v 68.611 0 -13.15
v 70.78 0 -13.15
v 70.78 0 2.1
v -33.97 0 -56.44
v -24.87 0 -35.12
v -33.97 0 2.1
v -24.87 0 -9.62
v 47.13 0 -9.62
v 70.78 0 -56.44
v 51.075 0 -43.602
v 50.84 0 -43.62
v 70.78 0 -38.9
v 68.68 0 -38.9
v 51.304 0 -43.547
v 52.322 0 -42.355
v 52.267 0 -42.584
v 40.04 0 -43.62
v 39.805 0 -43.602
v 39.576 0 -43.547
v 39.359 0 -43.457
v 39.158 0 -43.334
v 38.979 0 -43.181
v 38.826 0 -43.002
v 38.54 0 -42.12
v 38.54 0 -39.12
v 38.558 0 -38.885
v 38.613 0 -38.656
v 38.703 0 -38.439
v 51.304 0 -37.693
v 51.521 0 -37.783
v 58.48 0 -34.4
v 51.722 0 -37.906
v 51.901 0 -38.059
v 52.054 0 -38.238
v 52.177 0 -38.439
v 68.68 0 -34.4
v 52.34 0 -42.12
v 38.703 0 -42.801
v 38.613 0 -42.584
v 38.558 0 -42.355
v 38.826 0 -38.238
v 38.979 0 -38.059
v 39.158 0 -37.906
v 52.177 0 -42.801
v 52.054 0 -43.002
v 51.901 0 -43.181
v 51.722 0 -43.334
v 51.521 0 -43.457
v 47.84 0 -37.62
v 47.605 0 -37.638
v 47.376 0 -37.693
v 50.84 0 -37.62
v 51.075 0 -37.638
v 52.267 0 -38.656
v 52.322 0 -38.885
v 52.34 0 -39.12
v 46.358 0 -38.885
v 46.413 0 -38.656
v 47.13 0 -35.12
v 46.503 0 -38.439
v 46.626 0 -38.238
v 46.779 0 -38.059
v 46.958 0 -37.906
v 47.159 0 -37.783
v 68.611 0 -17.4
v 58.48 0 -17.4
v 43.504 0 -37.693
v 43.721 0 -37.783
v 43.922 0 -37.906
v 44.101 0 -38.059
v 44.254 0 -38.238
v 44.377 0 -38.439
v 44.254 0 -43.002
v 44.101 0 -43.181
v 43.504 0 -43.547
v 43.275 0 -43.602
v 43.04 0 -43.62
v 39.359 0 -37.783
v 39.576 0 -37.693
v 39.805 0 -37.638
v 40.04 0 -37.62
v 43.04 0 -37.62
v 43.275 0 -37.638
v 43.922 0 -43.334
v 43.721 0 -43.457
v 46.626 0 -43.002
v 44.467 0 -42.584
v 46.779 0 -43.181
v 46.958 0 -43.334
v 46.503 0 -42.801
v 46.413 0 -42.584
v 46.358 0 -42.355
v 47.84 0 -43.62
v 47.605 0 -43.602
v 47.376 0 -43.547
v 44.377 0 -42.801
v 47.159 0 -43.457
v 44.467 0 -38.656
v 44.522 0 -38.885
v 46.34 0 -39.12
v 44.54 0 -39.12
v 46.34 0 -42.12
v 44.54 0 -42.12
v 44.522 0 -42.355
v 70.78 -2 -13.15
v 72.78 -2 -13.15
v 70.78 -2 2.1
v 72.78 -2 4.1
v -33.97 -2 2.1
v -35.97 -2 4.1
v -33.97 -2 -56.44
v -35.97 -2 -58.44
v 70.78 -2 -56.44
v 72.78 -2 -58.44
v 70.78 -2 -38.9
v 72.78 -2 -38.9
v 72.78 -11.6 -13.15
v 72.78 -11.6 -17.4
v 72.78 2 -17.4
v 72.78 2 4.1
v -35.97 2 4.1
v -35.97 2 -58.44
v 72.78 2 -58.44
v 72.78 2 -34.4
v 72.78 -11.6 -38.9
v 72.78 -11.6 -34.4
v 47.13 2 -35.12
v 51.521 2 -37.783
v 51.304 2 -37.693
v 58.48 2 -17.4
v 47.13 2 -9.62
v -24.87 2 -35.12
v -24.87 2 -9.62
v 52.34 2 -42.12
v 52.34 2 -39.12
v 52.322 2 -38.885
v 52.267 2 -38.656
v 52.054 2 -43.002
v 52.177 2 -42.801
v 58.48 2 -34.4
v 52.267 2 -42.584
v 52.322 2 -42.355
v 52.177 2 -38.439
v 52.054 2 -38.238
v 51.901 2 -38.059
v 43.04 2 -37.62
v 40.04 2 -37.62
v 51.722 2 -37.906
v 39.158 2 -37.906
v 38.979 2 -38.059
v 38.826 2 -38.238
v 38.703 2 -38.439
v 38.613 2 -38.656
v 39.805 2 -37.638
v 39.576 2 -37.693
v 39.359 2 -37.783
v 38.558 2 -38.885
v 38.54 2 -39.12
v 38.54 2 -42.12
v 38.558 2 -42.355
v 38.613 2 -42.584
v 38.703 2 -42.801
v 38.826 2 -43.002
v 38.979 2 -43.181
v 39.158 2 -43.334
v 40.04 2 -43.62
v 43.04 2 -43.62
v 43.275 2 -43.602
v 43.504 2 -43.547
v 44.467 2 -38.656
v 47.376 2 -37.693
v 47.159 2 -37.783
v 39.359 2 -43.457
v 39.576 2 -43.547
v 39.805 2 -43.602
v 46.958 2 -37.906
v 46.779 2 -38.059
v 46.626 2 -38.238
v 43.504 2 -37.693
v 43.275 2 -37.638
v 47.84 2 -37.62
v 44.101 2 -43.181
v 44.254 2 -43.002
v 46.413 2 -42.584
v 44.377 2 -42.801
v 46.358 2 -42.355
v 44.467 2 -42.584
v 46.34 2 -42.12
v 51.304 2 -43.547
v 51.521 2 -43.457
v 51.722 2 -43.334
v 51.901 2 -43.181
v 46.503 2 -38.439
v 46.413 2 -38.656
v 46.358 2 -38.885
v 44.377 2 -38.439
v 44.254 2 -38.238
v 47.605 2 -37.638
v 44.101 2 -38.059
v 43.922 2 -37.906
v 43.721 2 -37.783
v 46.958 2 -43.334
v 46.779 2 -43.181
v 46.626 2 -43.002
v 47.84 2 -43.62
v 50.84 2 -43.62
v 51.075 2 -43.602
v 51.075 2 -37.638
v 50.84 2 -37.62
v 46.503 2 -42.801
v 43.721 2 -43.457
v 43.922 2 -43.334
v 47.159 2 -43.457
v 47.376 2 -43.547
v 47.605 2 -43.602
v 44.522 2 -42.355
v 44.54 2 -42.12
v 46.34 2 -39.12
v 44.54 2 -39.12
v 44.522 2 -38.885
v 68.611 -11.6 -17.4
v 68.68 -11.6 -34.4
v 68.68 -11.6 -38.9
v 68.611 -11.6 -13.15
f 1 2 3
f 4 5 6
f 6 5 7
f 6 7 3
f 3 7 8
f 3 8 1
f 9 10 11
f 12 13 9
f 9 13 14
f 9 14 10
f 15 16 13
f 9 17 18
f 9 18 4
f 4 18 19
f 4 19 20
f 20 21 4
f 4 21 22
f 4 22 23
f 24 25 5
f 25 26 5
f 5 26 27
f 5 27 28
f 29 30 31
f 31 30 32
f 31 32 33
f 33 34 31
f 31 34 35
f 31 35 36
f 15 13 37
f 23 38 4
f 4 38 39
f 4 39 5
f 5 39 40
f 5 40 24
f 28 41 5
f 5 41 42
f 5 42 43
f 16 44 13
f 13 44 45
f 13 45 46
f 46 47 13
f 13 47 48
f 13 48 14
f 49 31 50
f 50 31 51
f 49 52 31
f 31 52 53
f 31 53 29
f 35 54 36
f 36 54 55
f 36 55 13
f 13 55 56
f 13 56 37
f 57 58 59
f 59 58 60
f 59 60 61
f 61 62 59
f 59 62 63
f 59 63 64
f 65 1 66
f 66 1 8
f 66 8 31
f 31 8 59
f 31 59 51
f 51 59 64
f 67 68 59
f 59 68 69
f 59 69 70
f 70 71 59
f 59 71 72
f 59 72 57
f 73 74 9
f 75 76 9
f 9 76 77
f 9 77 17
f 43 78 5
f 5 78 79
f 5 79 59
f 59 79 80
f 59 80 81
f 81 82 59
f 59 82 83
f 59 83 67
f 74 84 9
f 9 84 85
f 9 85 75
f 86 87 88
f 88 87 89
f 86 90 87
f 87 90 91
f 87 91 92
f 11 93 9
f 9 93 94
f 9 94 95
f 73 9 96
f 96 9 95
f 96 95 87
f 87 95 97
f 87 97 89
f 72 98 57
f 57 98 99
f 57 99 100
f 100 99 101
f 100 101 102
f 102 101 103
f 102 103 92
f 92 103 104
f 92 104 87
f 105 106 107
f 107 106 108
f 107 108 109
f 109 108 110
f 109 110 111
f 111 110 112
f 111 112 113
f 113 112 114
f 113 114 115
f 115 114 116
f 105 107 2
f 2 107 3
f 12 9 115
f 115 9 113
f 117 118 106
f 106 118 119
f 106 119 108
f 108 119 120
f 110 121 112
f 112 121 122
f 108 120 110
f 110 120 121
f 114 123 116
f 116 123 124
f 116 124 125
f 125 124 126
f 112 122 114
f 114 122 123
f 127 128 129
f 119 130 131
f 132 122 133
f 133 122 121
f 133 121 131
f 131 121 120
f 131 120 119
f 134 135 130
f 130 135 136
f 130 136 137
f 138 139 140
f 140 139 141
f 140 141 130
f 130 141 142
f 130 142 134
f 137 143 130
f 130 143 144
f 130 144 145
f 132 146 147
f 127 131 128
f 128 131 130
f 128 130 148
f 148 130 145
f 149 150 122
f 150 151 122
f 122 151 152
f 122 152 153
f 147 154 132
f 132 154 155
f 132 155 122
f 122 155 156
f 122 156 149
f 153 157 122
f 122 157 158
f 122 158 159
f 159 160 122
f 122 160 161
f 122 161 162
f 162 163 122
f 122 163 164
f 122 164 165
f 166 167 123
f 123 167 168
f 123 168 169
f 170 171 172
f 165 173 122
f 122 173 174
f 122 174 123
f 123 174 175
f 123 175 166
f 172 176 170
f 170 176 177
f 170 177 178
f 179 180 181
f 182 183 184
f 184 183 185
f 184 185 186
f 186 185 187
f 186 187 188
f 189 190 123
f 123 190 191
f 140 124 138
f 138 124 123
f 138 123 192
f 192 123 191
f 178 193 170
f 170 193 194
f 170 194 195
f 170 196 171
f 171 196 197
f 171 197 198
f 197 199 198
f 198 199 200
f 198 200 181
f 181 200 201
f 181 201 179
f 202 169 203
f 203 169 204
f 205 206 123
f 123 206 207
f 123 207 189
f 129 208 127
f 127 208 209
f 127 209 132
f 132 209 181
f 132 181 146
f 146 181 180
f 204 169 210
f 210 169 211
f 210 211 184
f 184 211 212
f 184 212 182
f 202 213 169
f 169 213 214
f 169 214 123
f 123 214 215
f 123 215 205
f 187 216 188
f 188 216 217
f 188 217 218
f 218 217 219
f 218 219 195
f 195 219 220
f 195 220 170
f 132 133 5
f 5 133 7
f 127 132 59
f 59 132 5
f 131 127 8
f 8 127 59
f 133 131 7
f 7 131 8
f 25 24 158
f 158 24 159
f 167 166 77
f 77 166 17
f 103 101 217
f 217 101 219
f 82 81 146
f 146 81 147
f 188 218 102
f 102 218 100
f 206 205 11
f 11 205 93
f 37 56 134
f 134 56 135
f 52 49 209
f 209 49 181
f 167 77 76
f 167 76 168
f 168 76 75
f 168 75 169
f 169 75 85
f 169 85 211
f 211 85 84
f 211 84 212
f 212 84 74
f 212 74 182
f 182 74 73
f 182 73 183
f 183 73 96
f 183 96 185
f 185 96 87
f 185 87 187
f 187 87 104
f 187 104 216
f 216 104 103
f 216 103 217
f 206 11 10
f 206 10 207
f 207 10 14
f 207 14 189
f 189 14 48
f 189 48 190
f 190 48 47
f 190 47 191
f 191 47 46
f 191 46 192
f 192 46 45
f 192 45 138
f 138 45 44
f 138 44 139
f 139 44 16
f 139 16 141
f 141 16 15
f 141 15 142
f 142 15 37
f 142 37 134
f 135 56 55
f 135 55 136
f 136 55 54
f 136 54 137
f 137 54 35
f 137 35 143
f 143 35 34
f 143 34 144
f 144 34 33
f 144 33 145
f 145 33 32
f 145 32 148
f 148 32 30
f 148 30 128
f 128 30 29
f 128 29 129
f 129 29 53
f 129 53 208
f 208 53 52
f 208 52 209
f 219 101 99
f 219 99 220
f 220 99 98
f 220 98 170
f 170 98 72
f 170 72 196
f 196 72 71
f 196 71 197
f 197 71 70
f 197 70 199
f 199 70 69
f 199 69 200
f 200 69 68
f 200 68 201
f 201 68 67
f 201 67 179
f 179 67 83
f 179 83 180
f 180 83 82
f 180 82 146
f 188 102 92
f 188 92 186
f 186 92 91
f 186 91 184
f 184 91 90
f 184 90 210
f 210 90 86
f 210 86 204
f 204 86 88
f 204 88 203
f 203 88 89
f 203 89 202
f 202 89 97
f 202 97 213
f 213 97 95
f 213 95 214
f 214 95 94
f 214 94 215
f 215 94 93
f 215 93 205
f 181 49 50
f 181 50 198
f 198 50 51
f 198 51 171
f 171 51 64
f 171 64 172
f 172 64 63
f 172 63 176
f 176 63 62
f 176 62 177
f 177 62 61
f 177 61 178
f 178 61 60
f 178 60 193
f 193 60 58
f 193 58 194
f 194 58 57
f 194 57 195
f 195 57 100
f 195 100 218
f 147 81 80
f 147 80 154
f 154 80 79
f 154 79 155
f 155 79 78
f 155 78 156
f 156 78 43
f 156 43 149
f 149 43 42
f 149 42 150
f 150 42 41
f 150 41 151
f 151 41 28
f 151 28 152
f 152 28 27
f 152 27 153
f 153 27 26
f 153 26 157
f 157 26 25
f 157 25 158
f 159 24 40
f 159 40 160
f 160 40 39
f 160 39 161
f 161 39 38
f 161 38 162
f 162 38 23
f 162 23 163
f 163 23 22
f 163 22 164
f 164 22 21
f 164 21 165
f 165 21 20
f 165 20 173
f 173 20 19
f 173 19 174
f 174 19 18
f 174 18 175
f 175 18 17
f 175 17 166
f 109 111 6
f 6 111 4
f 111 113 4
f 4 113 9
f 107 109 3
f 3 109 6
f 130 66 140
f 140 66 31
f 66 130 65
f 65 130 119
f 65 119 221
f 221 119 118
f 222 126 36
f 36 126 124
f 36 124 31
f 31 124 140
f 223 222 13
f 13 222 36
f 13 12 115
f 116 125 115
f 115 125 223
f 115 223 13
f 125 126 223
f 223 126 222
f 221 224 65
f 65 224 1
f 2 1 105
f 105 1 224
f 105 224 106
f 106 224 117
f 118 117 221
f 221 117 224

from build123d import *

# Parameters (mm, degrees)
LID_W               = 108.75
LID_H               = 62.54
EXTRUDE_1_DEPTH     = 2
CUT_EXTRUDE_1_REACH = 95.36
SKETCH_8_W          = 72
SKETCH_8_H          = 25.5
CUT_EXTRUDE_3_REACH = 95.36
SKETCH_15_W         = 6
SKETCH_15_H         = 6
FILLET_1_R          = 1.5
SKETCH_16_W         = 108.75
SKETCH_16_H         = 62.54
SKETCH_16_W_2       = 104.75
SKETCH_16_H_2       = 58.54
EXTRUDE_2_DEPTH     = 2
SKETCH_17_W         = 14.3
SKETCH_17_H         = 17
CUT_EXTRUDE_4_DEPTH = 4
SKETCH_18_W         = 4.1
SKETCH_18_H         = 4.5
SKETCH_18_W_2       = 4.169367978
SKETCH_18_H_2       = 4.25
EXTRUDE_3_DEPTH     = 11.6


with BuildPart() as part:
    # lid → ﾎﾞｽ - 押し出し1 (new body)
    with BuildSketch(Plane(origin=(0, 0, 0), x_dir=(1, 0, 0), z_dir=(0, 1, 0))):
        with Locations((18.405, 27.17)):
            Rectangle(LID_W, LID_H)
    extrude(amount=EXTRUDE_1_DEPTH)

    # ｽｹｯﾁ8 → ｶｯﾄ - 押し出し1 (cut, up to next)
    with BuildSketch(Plane(origin=(0, 2, 0), x_dir=(1, 0, 0), z_dir=(0, 1, 0)), mode=Mode.PRIVATE) as cut_extrude_1_sk1:
        with Locations((11.13, 22.37)):
            Rectangle(SKETCH_8_W, SKETCH_8_H)
    cut_extrude_1_tool1 = extrude(cut_extrude_1_sk1.sketch, amount=-CUT_EXTRUDE_1_REACH, mode=Mode.PRIVATE) & part.part
    add(cut_extrude_1_tool1.solids().sort_by_distance((11.13, 2, -22.37))[0], mode=Mode.SUBTRACT)

    # ｽｹｯﾁ15 → ｶｯﾄ - 押し出し3 (cut, up to next)
    with BuildSketch(Plane(origin=(0, 2, 0), x_dir=(1, 0, 0), z_dir=(0, 1, 0)), mode=Mode.PRIVATE) as cut_extrude_3_sk1:
        with Locations((41.54, 40.62)):
            Rectangle(SKETCH_15_W, SKETCH_15_H)
    cut_extrude_3_tool1 = extrude(cut_extrude_3_sk1.sketch, amount=-CUT_EXTRUDE_3_REACH, mode=Mode.PRIVATE) & part.part
    # ｽｹｯﾁ15 → ｶｯﾄ - 押し出し3 (cut, up to next)
    with BuildSketch(Plane(origin=(0, 2, 0), x_dir=(1, 0, 0), z_dir=(0, 1, 0)), mode=Mode.PRIVATE) as cut_extrude_3_sk2:
        with Locations((49.34, 40.62)):
            Rectangle(SKETCH_15_W, SKETCH_15_H)
    cut_extrude_3_tool2 = extrude(cut_extrude_3_sk2.sketch, amount=-CUT_EXTRUDE_3_REACH, mode=Mode.PRIVATE) & part.part
    add(cut_extrude_3_tool1.solids().sort_by_distance((41.54, 2, -40.62))[0], mode=Mode.SUBTRACT)
    add(cut_extrude_3_tool2.solids().sort_by_distance((49.34, 2, -40.62))[0], mode=Mode.SUBTRACT)

    # ﾌｨﾚｯﾄ1
    fillet_1_edges = [part.edges().sort_by_distance(p)[0] for p in [
        (38.54, 1, -37.62),
        (38.54, 1, -43.62),
        (44.54, 1, -43.62),
        (44.54, 1, -37.62),
        (46.34, 1, -37.62),
        (46.34, 1, -43.62),
        (52.34, 1, -43.62),
        (52.34, 1, -37.62),
    ]]
    fillet(fillet_1_edges, radius=FILLET_1_R)

    # ｽｹｯﾁ16 → ﾎﾞｽ - 押し出し2 (add)
    with BuildSketch(Plane.XZ):
        with Locations((18.405, -27.17)):
            Rectangle(SKETCH_16_W, SKETCH_16_H)
        with Locations((18.405, -27.17)):
            Rectangle(SKETCH_16_W_2, SKETCH_16_H_2, mode=Mode.SUBTRACT)
    extrude(amount=EXTRUDE_2_DEPTH)

    # ｽｹｯﾁ17 → ｶｯﾄ - 押し出し4 (cut)
    with BuildSketch(Plane(origin=(0, 2, 0), x_dir=(1, 0, 0), z_dir=(0, 1, 0))):
        with Locations((65.63, 25.9)):
            Rectangle(SKETCH_17_W, SKETCH_17_H)
    extrude(amount=-CUT_EXTRUDE_4_DEPTH, mode=Mode.SUBTRACT)

    # ｽｹｯﾁ18 → ﾎﾞｽ - 押し出し3 (add)
    with BuildSketch(Plane.XZ):
        with Locations((70.73, -36.65)):
            Rectangle(SKETCH_18_W, SKETCH_18_H)
        with Locations((70.695316011, -15.275)):
            Rectangle(SKETCH_18_W_2, SKETCH_18_H_2)
    extrude(amount=EXTRUDE_3_DEPTH)


solid = part.part
